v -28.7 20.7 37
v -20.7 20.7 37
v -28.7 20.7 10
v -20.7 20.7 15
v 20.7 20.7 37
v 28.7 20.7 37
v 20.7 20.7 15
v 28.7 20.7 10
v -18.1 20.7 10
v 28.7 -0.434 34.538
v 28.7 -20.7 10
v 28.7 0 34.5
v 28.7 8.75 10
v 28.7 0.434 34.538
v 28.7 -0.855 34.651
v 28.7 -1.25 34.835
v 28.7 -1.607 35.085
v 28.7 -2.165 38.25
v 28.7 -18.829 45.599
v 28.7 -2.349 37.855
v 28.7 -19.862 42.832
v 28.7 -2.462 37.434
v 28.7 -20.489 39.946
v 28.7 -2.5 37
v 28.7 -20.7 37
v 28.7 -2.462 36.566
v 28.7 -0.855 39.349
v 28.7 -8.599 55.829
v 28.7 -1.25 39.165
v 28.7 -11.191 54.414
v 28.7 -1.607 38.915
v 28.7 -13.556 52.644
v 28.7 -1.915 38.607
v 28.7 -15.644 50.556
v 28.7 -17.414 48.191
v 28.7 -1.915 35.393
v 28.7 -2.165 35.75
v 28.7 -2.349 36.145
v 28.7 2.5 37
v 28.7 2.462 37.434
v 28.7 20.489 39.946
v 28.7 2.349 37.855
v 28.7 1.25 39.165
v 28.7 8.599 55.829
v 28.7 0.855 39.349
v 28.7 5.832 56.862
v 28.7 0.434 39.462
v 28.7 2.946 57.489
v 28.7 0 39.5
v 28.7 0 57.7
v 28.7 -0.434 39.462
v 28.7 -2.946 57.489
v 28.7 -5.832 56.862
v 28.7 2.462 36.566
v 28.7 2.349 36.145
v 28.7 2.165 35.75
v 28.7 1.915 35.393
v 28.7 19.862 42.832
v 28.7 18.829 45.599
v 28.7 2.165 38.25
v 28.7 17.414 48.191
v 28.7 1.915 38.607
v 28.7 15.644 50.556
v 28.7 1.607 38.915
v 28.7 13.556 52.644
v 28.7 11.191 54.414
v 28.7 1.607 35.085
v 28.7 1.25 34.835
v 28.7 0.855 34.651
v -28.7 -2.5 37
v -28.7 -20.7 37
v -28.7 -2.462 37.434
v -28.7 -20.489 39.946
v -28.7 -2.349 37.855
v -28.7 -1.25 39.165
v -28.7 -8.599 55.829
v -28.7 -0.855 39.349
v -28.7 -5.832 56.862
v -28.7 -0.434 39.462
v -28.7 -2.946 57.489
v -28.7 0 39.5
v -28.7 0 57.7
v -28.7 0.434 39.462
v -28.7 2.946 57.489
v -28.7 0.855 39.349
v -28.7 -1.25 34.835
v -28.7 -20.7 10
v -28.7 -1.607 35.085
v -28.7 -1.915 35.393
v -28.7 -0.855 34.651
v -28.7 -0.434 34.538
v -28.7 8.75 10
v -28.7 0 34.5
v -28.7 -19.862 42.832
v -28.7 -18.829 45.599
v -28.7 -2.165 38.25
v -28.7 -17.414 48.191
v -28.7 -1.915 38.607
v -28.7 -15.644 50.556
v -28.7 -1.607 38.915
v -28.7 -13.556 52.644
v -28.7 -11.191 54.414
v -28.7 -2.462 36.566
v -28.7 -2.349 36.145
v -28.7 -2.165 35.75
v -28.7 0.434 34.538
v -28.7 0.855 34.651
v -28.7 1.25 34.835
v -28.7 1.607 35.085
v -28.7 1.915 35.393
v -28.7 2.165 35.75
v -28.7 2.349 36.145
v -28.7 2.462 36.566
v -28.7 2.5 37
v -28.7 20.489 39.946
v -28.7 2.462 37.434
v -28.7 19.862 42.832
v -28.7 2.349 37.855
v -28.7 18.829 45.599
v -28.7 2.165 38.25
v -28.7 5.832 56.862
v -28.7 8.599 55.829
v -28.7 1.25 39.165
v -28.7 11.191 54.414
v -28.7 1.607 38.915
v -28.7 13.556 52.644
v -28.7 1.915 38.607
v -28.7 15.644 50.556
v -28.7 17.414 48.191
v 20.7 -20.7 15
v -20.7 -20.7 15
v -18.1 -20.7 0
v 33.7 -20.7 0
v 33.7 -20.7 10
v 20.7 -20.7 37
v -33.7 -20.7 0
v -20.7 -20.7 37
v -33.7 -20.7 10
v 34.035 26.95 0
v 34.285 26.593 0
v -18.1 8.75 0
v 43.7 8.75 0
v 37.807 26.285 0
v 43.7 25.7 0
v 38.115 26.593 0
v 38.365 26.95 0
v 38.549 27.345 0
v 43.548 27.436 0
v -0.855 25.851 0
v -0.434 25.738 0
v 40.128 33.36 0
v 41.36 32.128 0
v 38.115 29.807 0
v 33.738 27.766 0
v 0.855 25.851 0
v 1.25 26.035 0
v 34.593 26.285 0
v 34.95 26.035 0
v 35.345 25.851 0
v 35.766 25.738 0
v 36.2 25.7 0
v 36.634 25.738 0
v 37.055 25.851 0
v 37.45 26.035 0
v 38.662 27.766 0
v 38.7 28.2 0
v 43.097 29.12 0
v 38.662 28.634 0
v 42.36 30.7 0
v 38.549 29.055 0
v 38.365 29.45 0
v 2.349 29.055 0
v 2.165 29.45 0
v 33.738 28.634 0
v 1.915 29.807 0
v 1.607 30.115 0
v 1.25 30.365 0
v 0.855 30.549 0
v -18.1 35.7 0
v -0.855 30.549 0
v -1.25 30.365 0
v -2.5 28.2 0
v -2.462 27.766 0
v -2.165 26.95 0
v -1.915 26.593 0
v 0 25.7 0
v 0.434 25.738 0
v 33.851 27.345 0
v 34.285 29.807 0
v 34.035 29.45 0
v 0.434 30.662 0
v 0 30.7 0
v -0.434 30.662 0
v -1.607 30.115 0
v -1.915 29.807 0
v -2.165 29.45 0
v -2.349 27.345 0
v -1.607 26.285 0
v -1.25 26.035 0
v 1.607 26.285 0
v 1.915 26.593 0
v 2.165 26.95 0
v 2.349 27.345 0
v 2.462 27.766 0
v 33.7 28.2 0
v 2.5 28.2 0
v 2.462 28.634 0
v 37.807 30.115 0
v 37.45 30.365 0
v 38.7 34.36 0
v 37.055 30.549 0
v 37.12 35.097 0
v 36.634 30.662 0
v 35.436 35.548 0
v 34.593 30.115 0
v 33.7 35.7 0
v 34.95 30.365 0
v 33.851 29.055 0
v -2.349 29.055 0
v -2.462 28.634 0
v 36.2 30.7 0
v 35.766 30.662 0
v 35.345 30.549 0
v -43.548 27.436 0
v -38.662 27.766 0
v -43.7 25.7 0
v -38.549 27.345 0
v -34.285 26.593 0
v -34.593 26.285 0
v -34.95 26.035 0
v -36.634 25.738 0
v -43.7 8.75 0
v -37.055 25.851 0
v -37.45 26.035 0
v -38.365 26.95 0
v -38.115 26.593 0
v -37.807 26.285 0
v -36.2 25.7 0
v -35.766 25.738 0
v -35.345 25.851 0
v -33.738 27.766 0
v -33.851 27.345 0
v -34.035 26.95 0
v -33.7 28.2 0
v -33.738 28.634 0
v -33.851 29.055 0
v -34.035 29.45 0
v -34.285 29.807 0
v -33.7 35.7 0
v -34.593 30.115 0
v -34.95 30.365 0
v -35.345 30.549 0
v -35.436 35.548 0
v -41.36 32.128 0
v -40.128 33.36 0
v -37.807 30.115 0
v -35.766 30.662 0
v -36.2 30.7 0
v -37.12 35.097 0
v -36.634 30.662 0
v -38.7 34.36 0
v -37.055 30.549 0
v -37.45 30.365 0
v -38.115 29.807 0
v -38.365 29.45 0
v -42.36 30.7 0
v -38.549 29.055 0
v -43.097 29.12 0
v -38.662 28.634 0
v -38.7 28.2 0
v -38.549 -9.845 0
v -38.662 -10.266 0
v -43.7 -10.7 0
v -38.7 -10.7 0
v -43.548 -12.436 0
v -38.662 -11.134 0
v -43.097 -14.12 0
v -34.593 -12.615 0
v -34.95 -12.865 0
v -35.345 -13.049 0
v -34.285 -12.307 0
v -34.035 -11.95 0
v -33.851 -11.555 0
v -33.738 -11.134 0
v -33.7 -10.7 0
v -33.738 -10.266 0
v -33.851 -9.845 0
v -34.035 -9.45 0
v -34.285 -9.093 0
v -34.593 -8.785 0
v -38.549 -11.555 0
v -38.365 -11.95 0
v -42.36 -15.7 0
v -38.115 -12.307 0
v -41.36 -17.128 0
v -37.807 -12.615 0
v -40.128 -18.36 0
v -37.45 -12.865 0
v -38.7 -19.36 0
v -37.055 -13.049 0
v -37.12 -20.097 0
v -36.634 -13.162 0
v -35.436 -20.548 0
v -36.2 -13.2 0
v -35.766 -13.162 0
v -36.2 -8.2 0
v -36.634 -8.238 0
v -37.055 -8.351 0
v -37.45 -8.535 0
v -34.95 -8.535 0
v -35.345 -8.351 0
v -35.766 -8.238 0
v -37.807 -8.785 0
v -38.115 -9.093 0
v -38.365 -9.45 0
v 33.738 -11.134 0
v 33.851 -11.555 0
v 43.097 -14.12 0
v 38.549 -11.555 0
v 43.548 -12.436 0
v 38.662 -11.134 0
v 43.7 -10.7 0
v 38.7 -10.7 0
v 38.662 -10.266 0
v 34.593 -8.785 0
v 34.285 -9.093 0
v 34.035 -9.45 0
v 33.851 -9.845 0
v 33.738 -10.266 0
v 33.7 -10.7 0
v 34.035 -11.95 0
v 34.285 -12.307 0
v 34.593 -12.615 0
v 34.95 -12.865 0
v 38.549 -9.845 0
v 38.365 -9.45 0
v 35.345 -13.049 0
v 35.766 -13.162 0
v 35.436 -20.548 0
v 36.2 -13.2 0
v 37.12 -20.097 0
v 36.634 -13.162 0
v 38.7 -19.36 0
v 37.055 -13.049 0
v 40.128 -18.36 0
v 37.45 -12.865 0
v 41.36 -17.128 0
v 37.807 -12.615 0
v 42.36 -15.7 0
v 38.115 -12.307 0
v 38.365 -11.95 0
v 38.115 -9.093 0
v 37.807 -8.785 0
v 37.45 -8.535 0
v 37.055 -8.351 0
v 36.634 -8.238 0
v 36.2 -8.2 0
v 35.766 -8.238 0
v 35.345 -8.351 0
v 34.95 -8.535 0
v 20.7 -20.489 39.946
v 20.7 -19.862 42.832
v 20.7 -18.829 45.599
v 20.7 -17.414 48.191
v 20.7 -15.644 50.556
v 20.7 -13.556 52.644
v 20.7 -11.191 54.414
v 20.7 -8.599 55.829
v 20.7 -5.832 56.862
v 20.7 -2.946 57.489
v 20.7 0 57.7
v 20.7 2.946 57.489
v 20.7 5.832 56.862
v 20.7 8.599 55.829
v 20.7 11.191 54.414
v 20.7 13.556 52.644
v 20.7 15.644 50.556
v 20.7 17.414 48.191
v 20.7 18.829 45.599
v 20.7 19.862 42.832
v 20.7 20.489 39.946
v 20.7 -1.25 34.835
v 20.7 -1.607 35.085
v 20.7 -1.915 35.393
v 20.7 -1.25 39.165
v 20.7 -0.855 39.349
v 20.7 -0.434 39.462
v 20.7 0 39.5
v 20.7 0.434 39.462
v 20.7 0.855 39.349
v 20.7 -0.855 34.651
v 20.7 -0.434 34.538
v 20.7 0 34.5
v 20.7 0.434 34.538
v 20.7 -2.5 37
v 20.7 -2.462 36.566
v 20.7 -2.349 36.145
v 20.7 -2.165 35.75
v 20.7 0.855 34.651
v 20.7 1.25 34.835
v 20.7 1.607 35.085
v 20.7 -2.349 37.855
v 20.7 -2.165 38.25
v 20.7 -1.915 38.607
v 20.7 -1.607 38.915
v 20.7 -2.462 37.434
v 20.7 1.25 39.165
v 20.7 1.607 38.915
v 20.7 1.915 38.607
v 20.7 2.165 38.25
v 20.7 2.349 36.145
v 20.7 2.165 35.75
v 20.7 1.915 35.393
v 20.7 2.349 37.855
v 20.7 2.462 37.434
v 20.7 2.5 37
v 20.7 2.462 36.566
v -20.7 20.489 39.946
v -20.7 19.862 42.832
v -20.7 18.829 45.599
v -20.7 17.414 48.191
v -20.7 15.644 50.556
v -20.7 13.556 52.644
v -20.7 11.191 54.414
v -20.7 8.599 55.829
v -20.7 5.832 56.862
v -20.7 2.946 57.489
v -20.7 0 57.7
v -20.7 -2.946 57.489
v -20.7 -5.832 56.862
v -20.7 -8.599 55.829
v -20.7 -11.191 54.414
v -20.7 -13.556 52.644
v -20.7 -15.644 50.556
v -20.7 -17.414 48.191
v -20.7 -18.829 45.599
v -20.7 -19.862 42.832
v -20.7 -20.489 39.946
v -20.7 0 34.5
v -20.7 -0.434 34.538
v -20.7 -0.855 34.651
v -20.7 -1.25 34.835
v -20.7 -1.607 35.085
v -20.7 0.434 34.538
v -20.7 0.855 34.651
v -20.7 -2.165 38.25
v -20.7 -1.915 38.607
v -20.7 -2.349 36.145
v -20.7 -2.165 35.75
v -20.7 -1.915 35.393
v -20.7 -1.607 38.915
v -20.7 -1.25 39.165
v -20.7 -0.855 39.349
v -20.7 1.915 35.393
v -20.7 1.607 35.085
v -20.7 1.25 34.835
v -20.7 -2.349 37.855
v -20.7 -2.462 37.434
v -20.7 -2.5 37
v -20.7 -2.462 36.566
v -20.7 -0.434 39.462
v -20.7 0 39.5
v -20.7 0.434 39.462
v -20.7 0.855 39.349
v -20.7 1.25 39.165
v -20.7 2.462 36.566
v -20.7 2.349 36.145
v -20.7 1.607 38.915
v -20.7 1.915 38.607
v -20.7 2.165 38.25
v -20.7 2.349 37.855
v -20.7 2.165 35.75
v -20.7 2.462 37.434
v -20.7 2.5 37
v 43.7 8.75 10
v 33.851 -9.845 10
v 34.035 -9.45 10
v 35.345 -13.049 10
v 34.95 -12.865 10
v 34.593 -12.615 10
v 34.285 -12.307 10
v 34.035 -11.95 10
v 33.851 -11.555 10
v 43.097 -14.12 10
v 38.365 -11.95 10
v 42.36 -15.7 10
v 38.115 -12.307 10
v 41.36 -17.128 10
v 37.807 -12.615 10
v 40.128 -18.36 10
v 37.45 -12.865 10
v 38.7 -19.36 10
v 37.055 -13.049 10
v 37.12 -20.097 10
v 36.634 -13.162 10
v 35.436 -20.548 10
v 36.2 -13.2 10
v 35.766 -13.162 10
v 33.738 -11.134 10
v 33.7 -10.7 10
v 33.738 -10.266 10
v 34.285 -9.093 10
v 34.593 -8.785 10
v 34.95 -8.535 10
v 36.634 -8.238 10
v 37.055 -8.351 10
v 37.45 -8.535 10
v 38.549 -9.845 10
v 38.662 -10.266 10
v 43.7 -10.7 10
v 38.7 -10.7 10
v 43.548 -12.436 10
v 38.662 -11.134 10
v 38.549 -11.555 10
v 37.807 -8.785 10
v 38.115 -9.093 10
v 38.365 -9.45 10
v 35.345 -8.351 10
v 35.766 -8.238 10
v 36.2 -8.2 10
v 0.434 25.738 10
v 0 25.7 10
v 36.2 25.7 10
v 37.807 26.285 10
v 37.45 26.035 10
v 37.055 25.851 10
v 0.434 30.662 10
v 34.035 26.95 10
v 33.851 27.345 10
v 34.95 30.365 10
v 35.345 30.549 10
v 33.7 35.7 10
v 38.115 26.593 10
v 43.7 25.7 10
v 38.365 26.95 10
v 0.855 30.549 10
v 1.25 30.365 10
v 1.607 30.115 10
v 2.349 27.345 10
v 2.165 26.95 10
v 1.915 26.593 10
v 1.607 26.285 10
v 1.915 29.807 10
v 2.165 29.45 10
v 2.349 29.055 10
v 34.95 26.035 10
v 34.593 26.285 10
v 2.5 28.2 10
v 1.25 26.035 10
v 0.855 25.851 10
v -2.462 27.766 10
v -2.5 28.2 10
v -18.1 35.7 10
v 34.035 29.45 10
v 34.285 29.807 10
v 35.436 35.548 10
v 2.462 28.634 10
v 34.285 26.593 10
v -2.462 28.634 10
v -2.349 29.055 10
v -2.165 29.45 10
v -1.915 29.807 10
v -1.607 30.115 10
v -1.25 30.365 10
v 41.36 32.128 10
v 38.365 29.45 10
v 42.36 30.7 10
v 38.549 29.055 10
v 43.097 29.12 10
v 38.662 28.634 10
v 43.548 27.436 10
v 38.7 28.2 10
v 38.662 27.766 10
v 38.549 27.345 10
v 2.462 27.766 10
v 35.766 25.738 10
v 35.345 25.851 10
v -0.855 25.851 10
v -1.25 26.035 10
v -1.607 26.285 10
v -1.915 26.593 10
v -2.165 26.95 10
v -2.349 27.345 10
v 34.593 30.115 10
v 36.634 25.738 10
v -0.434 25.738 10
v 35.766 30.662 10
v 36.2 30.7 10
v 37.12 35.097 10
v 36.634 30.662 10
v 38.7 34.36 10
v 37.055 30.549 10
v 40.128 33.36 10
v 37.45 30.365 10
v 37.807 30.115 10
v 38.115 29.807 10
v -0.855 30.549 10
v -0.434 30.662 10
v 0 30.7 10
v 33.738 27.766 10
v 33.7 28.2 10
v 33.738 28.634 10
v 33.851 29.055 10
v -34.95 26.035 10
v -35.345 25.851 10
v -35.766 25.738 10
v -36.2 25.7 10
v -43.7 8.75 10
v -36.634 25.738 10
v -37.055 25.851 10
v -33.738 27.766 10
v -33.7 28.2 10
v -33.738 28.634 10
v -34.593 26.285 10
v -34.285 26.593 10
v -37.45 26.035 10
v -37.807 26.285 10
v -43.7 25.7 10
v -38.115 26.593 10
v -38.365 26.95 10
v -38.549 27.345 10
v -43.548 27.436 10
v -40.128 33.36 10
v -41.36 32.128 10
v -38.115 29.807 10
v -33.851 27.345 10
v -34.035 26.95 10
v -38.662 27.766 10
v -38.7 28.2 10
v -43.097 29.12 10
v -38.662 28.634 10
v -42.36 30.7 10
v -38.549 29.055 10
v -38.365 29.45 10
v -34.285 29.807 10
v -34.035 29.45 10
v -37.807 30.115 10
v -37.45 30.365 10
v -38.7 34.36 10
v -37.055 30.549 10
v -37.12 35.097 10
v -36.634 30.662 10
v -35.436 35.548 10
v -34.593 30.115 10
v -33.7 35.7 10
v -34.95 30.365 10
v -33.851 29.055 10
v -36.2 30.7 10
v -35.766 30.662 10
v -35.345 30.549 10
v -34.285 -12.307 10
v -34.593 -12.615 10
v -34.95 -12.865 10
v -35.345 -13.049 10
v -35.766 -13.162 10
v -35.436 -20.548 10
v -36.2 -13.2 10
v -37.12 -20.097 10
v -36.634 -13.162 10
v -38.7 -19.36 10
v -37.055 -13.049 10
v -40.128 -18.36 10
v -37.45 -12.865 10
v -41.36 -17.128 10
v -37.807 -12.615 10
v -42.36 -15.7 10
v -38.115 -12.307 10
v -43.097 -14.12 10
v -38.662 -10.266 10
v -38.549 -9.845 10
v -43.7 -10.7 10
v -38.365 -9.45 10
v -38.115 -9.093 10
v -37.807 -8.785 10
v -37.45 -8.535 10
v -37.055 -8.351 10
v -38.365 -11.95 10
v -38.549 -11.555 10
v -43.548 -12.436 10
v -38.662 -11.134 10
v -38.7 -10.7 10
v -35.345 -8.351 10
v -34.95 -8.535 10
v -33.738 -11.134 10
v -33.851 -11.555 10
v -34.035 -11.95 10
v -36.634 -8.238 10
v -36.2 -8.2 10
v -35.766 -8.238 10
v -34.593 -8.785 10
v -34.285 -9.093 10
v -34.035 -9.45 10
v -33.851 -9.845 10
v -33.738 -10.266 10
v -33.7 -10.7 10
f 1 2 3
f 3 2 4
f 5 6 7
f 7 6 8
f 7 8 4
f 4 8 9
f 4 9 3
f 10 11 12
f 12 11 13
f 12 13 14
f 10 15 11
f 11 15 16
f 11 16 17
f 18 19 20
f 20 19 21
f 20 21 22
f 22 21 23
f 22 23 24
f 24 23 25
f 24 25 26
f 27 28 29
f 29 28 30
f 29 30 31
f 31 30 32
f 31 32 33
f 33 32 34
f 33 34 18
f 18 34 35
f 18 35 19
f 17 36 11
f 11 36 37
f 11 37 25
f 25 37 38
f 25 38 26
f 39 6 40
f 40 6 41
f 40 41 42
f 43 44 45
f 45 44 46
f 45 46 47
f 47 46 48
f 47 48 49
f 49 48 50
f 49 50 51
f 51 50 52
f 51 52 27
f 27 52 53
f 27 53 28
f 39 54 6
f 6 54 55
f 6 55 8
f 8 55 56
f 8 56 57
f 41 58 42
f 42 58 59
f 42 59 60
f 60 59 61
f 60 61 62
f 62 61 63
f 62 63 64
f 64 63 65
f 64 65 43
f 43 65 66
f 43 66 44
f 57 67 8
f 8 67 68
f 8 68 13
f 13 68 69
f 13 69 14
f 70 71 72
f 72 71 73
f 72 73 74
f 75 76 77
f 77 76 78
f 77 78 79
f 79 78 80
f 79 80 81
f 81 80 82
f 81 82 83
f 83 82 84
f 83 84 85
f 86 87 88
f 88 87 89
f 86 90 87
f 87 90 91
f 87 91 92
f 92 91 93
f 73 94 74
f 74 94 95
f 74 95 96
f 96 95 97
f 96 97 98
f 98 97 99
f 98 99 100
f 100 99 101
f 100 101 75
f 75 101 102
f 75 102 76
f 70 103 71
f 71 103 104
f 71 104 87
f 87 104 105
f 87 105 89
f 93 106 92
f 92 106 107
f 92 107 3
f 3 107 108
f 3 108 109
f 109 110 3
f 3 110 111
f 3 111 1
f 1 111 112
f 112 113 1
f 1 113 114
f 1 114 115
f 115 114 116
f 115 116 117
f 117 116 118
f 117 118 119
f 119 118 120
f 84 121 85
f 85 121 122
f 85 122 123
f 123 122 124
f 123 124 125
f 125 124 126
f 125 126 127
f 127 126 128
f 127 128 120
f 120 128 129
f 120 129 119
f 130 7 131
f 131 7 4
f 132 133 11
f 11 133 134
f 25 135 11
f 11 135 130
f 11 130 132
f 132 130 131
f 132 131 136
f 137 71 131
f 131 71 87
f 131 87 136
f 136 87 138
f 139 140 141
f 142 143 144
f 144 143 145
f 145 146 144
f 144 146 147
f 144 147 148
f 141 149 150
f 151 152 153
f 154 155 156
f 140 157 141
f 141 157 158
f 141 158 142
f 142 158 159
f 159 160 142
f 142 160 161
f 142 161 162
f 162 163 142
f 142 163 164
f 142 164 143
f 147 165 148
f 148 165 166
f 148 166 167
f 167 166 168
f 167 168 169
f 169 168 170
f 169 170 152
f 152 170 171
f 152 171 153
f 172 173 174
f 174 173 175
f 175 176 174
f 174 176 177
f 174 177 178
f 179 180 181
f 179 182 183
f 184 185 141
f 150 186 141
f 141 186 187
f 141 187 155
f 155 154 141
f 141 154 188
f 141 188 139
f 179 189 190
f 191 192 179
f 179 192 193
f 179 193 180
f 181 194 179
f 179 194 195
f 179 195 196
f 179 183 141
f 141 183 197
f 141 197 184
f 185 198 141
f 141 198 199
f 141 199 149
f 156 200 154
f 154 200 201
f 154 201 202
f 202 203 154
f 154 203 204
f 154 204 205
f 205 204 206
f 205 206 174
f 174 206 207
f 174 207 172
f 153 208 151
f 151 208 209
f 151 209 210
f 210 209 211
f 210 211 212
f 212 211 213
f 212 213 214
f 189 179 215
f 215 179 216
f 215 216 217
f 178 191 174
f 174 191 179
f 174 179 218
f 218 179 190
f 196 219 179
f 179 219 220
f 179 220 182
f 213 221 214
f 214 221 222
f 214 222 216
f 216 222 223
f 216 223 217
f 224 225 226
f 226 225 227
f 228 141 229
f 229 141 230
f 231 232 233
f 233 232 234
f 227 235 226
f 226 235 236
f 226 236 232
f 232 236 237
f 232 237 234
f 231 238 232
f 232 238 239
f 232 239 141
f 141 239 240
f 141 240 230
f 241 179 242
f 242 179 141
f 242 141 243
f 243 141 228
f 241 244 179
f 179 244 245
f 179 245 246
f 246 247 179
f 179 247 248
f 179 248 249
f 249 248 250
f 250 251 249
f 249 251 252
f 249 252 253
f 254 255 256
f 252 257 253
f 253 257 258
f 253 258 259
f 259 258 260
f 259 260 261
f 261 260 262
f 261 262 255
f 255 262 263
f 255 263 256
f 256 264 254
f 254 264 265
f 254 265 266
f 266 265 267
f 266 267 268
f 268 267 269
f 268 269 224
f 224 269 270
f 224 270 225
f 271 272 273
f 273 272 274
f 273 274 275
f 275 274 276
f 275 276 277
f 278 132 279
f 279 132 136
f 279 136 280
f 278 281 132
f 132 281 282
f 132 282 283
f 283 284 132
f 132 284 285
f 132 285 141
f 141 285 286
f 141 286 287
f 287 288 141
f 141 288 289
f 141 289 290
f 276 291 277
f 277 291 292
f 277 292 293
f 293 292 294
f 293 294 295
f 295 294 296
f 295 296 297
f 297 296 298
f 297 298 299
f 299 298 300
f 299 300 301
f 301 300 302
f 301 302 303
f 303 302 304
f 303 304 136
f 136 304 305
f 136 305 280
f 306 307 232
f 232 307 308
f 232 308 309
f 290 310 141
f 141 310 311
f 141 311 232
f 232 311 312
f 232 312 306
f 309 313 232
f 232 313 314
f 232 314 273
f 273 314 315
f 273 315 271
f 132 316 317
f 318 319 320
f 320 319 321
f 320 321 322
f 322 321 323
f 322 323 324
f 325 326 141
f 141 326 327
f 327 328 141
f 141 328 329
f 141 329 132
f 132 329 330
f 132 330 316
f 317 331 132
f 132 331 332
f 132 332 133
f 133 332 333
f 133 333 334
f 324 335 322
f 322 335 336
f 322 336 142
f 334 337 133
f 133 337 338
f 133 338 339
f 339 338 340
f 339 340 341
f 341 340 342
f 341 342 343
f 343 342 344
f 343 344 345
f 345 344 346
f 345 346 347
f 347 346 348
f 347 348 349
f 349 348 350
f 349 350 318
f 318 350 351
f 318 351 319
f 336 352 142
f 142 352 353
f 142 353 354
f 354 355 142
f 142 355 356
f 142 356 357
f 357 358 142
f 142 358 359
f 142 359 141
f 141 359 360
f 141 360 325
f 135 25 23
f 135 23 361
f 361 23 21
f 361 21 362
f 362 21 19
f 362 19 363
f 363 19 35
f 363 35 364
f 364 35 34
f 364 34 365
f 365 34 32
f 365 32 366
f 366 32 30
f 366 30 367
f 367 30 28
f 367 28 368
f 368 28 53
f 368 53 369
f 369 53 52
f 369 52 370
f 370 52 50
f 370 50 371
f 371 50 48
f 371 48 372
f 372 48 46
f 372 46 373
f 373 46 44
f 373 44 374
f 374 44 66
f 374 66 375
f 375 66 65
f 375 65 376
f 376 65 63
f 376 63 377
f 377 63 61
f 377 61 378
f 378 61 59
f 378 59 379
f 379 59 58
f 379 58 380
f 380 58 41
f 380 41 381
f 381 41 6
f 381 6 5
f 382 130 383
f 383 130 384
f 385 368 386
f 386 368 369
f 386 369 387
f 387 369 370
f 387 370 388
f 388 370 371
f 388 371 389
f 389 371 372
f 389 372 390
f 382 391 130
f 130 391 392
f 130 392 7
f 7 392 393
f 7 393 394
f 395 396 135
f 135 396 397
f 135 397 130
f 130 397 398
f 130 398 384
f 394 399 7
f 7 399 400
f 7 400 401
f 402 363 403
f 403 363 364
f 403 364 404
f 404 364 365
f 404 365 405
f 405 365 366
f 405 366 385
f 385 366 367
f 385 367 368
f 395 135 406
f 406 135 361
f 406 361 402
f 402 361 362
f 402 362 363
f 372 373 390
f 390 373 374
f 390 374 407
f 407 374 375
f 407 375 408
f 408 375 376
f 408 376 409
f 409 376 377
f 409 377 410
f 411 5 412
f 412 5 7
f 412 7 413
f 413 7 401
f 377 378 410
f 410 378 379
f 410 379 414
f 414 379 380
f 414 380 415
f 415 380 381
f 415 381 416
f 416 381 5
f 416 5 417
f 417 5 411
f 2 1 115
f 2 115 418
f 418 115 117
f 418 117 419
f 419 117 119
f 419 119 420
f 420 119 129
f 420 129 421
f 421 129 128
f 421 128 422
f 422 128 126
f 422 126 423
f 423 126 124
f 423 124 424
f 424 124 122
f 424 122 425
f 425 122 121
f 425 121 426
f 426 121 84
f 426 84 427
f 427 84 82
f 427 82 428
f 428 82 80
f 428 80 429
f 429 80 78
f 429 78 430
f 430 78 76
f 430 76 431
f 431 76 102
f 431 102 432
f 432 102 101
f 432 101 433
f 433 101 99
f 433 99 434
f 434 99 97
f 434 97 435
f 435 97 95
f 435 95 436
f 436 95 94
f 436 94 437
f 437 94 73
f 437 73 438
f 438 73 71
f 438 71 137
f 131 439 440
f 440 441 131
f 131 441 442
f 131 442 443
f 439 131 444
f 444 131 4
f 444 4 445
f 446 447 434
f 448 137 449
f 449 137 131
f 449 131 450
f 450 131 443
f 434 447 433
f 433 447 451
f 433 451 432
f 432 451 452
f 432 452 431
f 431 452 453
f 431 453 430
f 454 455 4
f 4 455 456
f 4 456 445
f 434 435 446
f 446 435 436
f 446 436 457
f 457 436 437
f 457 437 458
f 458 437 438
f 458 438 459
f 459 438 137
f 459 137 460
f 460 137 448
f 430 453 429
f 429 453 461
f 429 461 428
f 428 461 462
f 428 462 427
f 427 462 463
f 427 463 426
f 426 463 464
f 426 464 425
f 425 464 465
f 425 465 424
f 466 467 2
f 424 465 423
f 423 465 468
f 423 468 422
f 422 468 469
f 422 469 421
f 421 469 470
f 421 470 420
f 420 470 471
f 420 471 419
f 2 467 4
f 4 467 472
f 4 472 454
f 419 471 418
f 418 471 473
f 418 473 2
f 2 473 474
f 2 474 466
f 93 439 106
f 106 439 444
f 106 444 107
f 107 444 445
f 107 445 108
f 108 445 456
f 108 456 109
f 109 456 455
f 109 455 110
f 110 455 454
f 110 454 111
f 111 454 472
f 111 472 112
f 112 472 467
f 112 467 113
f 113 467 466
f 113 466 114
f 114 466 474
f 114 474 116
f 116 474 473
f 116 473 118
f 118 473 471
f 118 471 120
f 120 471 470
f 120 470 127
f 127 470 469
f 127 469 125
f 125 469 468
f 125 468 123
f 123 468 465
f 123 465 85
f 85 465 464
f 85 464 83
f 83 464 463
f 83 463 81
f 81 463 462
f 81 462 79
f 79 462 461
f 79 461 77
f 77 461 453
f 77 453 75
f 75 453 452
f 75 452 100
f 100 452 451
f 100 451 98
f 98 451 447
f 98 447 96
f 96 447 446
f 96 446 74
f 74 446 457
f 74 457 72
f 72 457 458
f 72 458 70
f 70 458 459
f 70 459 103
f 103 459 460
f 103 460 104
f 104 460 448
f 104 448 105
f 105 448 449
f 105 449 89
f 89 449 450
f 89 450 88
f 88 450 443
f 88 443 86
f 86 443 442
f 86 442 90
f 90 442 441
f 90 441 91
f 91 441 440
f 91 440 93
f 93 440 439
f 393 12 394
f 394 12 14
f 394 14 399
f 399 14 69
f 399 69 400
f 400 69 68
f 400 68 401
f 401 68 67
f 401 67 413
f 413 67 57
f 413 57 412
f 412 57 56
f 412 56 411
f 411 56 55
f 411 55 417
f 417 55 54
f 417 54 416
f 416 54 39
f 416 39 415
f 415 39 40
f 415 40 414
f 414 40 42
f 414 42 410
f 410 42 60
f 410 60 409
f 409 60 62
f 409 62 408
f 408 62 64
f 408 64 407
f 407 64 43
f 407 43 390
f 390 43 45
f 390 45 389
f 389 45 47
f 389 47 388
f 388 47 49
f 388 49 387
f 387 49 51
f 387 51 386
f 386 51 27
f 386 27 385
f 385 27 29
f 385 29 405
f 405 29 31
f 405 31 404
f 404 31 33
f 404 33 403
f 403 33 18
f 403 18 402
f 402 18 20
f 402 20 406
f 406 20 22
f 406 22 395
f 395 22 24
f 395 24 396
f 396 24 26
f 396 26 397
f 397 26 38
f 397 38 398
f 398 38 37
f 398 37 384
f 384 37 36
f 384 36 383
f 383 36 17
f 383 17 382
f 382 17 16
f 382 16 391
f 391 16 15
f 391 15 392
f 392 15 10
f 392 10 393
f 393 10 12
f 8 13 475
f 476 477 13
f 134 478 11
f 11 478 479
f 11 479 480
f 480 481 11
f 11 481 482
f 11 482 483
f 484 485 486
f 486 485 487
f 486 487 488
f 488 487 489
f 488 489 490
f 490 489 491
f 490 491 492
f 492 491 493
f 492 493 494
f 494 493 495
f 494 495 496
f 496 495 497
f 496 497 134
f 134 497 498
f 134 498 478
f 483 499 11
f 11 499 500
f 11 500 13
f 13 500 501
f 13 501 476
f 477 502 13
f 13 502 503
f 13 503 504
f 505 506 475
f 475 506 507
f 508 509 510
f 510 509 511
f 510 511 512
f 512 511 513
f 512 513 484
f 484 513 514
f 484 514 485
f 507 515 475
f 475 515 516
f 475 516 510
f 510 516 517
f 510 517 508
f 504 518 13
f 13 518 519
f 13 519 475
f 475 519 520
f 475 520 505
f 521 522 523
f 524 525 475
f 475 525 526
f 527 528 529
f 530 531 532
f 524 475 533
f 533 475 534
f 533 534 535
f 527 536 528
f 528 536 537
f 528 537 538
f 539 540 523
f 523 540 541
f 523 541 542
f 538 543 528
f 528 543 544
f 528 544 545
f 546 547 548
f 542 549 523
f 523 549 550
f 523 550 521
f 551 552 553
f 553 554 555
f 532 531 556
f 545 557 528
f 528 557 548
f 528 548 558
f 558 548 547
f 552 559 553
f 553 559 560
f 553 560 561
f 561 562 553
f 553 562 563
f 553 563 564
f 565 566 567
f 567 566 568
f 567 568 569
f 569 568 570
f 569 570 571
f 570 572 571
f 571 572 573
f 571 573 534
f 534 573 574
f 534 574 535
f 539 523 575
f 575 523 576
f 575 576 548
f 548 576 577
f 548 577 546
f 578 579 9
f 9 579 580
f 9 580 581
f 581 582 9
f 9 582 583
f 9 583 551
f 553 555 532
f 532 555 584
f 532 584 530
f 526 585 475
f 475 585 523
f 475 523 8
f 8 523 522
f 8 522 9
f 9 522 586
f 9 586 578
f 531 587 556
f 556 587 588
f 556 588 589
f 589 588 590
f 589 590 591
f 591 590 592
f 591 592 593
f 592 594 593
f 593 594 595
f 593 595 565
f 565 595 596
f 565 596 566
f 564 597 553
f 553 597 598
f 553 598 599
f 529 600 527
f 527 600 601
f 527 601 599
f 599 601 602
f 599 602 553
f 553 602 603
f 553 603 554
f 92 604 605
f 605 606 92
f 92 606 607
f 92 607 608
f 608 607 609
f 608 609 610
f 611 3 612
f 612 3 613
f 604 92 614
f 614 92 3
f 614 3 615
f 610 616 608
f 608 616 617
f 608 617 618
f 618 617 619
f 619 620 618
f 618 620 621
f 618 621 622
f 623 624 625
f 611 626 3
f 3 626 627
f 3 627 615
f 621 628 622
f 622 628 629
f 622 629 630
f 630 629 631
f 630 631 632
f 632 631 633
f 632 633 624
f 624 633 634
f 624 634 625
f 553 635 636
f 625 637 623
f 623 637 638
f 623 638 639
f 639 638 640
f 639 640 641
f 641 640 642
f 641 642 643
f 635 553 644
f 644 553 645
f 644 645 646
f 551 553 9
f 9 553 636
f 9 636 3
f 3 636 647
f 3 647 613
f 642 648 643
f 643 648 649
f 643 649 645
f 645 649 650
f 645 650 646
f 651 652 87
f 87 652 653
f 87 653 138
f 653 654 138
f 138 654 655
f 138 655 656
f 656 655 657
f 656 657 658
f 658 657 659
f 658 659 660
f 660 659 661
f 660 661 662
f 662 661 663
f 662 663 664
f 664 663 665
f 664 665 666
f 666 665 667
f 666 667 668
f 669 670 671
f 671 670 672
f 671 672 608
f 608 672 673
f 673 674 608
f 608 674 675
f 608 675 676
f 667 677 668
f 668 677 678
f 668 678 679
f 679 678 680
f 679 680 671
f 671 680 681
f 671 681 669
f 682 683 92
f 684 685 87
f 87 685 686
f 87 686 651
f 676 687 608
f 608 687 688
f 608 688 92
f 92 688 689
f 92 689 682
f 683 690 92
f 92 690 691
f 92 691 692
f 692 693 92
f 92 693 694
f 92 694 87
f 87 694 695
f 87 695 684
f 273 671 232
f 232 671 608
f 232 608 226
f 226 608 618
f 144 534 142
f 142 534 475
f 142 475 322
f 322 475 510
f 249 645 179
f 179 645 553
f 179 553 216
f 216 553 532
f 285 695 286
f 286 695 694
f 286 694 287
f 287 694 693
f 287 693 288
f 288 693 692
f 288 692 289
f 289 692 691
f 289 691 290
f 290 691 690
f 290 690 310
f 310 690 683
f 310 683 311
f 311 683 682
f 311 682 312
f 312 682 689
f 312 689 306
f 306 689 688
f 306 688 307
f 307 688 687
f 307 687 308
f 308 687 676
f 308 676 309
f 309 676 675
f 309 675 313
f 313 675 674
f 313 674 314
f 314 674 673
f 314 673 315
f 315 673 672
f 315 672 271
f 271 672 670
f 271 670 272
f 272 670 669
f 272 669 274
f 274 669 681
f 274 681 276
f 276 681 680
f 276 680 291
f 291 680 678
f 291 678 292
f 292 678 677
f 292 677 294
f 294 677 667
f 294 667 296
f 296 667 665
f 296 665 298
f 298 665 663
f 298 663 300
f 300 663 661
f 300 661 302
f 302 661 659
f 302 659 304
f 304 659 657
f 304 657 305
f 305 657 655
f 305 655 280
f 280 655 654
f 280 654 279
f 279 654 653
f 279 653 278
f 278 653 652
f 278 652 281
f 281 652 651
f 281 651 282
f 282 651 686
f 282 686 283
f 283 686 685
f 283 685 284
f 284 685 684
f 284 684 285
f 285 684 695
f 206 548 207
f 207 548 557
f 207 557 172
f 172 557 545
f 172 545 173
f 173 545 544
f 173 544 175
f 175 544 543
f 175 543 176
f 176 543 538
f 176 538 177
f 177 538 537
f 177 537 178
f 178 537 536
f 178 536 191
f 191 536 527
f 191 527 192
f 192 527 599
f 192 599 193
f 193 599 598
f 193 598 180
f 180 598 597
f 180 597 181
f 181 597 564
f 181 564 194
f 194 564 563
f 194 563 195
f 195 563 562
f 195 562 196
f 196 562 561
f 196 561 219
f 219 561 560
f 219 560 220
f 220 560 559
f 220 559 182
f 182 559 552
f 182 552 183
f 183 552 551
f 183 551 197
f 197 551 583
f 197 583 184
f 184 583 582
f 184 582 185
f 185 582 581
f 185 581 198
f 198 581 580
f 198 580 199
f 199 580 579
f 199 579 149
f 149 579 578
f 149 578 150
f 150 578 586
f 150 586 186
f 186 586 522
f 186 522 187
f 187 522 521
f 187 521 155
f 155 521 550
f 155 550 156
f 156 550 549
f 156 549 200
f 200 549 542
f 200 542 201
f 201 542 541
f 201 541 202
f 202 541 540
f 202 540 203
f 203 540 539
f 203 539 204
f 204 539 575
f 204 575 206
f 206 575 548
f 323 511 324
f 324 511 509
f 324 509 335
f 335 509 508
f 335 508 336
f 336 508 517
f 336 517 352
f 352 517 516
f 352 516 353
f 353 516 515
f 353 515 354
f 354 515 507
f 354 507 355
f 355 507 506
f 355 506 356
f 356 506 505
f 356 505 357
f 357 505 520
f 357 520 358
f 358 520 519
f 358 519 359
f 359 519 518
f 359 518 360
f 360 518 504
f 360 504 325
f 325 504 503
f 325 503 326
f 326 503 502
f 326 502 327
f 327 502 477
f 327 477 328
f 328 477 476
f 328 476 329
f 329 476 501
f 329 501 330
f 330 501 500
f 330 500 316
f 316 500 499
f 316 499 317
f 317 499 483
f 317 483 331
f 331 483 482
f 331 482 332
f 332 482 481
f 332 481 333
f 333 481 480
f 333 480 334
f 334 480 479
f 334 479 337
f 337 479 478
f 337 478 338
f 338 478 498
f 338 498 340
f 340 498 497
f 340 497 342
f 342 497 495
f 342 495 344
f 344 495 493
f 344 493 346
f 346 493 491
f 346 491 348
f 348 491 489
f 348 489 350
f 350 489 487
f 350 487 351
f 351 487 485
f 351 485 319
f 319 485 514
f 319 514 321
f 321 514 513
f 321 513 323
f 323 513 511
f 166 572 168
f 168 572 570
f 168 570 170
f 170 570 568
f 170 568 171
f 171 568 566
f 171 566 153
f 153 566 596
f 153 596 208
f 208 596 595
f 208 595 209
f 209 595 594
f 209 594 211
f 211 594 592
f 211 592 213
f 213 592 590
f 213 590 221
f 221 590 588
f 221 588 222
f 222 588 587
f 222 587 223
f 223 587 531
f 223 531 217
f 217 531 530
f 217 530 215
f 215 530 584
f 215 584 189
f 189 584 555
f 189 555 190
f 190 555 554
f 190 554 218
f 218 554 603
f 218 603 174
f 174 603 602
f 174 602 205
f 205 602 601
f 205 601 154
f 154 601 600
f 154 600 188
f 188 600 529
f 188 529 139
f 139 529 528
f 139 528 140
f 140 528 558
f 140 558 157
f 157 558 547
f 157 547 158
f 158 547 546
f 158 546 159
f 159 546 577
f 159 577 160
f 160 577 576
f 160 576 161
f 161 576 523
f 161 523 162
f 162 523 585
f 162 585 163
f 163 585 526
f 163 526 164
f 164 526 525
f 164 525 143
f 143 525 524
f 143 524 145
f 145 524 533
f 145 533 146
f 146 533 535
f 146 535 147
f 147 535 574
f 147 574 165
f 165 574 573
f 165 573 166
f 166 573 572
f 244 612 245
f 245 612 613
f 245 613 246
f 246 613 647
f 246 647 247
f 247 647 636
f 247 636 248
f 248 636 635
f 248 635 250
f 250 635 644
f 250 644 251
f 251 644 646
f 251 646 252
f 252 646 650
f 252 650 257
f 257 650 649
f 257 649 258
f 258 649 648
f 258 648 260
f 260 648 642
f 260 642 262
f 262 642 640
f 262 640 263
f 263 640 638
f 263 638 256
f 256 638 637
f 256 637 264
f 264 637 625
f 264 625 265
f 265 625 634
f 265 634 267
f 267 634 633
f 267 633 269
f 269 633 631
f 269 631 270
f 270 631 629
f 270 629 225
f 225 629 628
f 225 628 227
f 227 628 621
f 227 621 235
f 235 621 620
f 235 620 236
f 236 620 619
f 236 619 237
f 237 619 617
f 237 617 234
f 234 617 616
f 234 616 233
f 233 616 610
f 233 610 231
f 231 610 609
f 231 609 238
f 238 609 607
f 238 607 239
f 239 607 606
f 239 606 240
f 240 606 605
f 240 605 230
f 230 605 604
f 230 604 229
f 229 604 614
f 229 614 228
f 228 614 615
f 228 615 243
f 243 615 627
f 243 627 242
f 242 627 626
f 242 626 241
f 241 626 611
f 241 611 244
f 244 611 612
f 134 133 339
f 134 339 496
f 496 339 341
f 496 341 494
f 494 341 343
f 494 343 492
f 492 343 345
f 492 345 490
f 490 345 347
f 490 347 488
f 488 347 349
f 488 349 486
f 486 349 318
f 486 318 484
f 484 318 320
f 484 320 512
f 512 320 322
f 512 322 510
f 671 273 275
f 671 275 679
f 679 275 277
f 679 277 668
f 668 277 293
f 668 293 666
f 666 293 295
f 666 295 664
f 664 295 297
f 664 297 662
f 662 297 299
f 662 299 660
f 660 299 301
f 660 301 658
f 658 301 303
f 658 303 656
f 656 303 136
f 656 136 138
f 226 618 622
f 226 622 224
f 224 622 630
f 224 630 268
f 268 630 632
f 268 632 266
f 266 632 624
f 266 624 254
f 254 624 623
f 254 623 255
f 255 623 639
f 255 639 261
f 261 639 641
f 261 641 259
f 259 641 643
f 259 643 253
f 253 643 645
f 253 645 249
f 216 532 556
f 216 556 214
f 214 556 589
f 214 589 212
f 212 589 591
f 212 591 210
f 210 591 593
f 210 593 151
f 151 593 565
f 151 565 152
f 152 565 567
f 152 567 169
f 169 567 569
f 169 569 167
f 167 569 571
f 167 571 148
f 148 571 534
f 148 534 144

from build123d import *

# Parameters (mm, degrees)
SKETCH1_W           = 57.4
SKETCH1_H           = 41.4
BOSS_EXTRUDE1_DEPTH = 10
SKETCH2_W           = 57.4
SKETCH2_H           = 41.4
BOSS_EXTRUDE2_DEPTH = 5
BOSS_EXTRUDE3_DEPTH = 8
BOSS_EXTRUDE4_START = -8
BOSS_EXTRUDE4_DEPTH = 8
CUT_EXTRUDE1_REACH  = 85.979
SKETCH6_R           = 2.5
SKETCH11_W          = 10
SKETCH11_H          = 41.4
BOSS_EXTRUDE5_DEPTH = 15
SKETCH12_W          = 10
SKETCH12_H          = 41.4
BOSS_EXTRUDE6_DEPTH = 15
SKETCH13_W          = 87.4
SKETCH13_H          = 10
BOSS_EXTRUDE7_DEPTH = 15
SKETCH14_R          = 2.5
CUT_EXTRUDE2_DEPTH  = 10
FILLET1_R           = 10


with BuildPart() as part:
    # Sketch1 → Boss-Extrude1 (new body)
    with BuildSketch(Plane.XY):
        Rectangle(SKETCH1_W, SKETCH1_H)
    extrude(amount=BOSS_EXTRUDE1_DEPTH)

    # Sketch2 → Boss-Extrude2 (add)
    with BuildSketch(Plane.XY.offset(10)):
        Rectangle(SKETCH2_W, SKETCH2_H)
    extrude(amount=BOSS_EXTRUDE2_DEPTH)

    # Sketch4 → Boss-Extrude3 (add)
    with BuildSketch(Plane(origin=(28.7, 0, 0), x_dir=(0, 0, -1), z_dir=(1, 0, 0))):
        with BuildLine():
            Line((-15, -20.7), (-15, 20.7))
            Line((-15, 20.7), (-37, 20.7))
            ThreePointArc((-37, 20.7), (-57.7, 0), (-37, -20.7))
            Line((-37, -20.7), (-15, -20.7))
        make_face()
    extrude(amount=-BOSS_EXTRUDE3_DEPTH)

    # Sketch5 → Boss-Extrude4 (add)
    with BuildSketch(Plane.ZY.offset(28.7).offset(BOSS_EXTRUDE4_START)):
        with BuildLine():
            Line((15, 20.7), (15, -20.7))
            Line((15, -20.7), (37, -20.7))
            ThreePointArc((37, -20.7), (57.7, 0), (37, 20.7))
            Line((37, 20.7), (15, 20.7))
        make_face()
    extrude(amount=BOSS_EXTRUDE4_DEPTH)

    # Cut-Extrude1: up to this face of the body (flat: up to its plane)
    cut_extrude1_end = Plane(part.part.faces().sort_by_distance((-28.7, 0, 26.829272143))[0])
    # Sketch6 → Cut-Extrude1 (cut, up to the picked face)
    with BuildSketch(Plane(origin=(28.7, 0, 0), x_dir=(0, 0, -1), z_dir=(1, 0, 0)), mode=Mode.PRIVATE) as cut_extrude1_sk1:
        with Locations((-37, 0)):
            Circle(SKETCH6_R)
    cut_extrude1_tool1 = split(extrude(cut_extrude1_sk1.sketch, amount=-CUT_EXTRUDE1_REACH, mode=Mode.PRIVATE), bisect_by=cut_extrude1_end, keep=Keep.BOTH, mode=Mode.PRIVATE)
    add(cut_extrude1_tool1.solids().sort_by(Axis((28.7, 0, 37), (-1, 0, 0)))[0], mode=Mode.SUBTRACT)

    # Sketch11 → Boss-Extrude5 (add)
    with BuildSketch(Plane.ZY.offset(28.7)):
        with Locations((5, 0)):
            Rectangle(SKETCH11_W, SKETCH11_H)
    extrude(amount=BOSS_EXTRUDE5_DEPTH)

    # Sketch12 → Boss-Extrude6 (add)
    with BuildSketch(Plane(origin=(28.7, 0, 0), x_dir=(0, 0, -1), z_dir=(1, 0, 0))):
        with Locations((-5, 0)):
            Rectangle(SKETCH12_W, SKETCH12_H)
    extrude(amount=BOSS_EXTRUDE6_DEPTH)

    # Sketch13 → Boss-Extrude7 (add)
    with BuildSketch(Plane(origin=(0, 20.7, 0), x_dir=(1, 0, 0), z_dir=(0, 1, 0))):
        with Locations((0, -5)):
            Rectangle(SKETCH13_W, SKETCH13_H)
    extrude(amount=BOSS_EXTRUDE7_DEPTH)

    # Sketch14 → Cut-Extrude2 (cut)
    with BuildSketch(Plane.XY.offset(10)):
        with Locations((-36.2, -10.7)):
            Circle(SKETCH14_R)
        with Locations((-36.2, 28.2)):
            Circle(SKETCH14_R)
        with Locations((36.2, 28.2)):
            Circle(SKETCH14_R)
        with Locations((36.2, -10.7)):
            Circle(SKETCH14_R)
        with Locations((0, 28.2)):
            Circle(SKETCH14_R)
    extrude(amount=-CUT_EXTRUDE2_DEPTH, mode=Mode.SUBTRACT)

    # Fillet1
    fillet1_edges = [part.edges().sort_by_distance(p)[0] for p in [
        (-43.7, -20.7, 5),
        (43.7, -20.7, 5),
        (-43.7, 35.7, 5),
        (43.7, 35.7, 5),
    ]]
    fillet(fillet1_edges, radius=FILLET1_R)


solid = part.part
